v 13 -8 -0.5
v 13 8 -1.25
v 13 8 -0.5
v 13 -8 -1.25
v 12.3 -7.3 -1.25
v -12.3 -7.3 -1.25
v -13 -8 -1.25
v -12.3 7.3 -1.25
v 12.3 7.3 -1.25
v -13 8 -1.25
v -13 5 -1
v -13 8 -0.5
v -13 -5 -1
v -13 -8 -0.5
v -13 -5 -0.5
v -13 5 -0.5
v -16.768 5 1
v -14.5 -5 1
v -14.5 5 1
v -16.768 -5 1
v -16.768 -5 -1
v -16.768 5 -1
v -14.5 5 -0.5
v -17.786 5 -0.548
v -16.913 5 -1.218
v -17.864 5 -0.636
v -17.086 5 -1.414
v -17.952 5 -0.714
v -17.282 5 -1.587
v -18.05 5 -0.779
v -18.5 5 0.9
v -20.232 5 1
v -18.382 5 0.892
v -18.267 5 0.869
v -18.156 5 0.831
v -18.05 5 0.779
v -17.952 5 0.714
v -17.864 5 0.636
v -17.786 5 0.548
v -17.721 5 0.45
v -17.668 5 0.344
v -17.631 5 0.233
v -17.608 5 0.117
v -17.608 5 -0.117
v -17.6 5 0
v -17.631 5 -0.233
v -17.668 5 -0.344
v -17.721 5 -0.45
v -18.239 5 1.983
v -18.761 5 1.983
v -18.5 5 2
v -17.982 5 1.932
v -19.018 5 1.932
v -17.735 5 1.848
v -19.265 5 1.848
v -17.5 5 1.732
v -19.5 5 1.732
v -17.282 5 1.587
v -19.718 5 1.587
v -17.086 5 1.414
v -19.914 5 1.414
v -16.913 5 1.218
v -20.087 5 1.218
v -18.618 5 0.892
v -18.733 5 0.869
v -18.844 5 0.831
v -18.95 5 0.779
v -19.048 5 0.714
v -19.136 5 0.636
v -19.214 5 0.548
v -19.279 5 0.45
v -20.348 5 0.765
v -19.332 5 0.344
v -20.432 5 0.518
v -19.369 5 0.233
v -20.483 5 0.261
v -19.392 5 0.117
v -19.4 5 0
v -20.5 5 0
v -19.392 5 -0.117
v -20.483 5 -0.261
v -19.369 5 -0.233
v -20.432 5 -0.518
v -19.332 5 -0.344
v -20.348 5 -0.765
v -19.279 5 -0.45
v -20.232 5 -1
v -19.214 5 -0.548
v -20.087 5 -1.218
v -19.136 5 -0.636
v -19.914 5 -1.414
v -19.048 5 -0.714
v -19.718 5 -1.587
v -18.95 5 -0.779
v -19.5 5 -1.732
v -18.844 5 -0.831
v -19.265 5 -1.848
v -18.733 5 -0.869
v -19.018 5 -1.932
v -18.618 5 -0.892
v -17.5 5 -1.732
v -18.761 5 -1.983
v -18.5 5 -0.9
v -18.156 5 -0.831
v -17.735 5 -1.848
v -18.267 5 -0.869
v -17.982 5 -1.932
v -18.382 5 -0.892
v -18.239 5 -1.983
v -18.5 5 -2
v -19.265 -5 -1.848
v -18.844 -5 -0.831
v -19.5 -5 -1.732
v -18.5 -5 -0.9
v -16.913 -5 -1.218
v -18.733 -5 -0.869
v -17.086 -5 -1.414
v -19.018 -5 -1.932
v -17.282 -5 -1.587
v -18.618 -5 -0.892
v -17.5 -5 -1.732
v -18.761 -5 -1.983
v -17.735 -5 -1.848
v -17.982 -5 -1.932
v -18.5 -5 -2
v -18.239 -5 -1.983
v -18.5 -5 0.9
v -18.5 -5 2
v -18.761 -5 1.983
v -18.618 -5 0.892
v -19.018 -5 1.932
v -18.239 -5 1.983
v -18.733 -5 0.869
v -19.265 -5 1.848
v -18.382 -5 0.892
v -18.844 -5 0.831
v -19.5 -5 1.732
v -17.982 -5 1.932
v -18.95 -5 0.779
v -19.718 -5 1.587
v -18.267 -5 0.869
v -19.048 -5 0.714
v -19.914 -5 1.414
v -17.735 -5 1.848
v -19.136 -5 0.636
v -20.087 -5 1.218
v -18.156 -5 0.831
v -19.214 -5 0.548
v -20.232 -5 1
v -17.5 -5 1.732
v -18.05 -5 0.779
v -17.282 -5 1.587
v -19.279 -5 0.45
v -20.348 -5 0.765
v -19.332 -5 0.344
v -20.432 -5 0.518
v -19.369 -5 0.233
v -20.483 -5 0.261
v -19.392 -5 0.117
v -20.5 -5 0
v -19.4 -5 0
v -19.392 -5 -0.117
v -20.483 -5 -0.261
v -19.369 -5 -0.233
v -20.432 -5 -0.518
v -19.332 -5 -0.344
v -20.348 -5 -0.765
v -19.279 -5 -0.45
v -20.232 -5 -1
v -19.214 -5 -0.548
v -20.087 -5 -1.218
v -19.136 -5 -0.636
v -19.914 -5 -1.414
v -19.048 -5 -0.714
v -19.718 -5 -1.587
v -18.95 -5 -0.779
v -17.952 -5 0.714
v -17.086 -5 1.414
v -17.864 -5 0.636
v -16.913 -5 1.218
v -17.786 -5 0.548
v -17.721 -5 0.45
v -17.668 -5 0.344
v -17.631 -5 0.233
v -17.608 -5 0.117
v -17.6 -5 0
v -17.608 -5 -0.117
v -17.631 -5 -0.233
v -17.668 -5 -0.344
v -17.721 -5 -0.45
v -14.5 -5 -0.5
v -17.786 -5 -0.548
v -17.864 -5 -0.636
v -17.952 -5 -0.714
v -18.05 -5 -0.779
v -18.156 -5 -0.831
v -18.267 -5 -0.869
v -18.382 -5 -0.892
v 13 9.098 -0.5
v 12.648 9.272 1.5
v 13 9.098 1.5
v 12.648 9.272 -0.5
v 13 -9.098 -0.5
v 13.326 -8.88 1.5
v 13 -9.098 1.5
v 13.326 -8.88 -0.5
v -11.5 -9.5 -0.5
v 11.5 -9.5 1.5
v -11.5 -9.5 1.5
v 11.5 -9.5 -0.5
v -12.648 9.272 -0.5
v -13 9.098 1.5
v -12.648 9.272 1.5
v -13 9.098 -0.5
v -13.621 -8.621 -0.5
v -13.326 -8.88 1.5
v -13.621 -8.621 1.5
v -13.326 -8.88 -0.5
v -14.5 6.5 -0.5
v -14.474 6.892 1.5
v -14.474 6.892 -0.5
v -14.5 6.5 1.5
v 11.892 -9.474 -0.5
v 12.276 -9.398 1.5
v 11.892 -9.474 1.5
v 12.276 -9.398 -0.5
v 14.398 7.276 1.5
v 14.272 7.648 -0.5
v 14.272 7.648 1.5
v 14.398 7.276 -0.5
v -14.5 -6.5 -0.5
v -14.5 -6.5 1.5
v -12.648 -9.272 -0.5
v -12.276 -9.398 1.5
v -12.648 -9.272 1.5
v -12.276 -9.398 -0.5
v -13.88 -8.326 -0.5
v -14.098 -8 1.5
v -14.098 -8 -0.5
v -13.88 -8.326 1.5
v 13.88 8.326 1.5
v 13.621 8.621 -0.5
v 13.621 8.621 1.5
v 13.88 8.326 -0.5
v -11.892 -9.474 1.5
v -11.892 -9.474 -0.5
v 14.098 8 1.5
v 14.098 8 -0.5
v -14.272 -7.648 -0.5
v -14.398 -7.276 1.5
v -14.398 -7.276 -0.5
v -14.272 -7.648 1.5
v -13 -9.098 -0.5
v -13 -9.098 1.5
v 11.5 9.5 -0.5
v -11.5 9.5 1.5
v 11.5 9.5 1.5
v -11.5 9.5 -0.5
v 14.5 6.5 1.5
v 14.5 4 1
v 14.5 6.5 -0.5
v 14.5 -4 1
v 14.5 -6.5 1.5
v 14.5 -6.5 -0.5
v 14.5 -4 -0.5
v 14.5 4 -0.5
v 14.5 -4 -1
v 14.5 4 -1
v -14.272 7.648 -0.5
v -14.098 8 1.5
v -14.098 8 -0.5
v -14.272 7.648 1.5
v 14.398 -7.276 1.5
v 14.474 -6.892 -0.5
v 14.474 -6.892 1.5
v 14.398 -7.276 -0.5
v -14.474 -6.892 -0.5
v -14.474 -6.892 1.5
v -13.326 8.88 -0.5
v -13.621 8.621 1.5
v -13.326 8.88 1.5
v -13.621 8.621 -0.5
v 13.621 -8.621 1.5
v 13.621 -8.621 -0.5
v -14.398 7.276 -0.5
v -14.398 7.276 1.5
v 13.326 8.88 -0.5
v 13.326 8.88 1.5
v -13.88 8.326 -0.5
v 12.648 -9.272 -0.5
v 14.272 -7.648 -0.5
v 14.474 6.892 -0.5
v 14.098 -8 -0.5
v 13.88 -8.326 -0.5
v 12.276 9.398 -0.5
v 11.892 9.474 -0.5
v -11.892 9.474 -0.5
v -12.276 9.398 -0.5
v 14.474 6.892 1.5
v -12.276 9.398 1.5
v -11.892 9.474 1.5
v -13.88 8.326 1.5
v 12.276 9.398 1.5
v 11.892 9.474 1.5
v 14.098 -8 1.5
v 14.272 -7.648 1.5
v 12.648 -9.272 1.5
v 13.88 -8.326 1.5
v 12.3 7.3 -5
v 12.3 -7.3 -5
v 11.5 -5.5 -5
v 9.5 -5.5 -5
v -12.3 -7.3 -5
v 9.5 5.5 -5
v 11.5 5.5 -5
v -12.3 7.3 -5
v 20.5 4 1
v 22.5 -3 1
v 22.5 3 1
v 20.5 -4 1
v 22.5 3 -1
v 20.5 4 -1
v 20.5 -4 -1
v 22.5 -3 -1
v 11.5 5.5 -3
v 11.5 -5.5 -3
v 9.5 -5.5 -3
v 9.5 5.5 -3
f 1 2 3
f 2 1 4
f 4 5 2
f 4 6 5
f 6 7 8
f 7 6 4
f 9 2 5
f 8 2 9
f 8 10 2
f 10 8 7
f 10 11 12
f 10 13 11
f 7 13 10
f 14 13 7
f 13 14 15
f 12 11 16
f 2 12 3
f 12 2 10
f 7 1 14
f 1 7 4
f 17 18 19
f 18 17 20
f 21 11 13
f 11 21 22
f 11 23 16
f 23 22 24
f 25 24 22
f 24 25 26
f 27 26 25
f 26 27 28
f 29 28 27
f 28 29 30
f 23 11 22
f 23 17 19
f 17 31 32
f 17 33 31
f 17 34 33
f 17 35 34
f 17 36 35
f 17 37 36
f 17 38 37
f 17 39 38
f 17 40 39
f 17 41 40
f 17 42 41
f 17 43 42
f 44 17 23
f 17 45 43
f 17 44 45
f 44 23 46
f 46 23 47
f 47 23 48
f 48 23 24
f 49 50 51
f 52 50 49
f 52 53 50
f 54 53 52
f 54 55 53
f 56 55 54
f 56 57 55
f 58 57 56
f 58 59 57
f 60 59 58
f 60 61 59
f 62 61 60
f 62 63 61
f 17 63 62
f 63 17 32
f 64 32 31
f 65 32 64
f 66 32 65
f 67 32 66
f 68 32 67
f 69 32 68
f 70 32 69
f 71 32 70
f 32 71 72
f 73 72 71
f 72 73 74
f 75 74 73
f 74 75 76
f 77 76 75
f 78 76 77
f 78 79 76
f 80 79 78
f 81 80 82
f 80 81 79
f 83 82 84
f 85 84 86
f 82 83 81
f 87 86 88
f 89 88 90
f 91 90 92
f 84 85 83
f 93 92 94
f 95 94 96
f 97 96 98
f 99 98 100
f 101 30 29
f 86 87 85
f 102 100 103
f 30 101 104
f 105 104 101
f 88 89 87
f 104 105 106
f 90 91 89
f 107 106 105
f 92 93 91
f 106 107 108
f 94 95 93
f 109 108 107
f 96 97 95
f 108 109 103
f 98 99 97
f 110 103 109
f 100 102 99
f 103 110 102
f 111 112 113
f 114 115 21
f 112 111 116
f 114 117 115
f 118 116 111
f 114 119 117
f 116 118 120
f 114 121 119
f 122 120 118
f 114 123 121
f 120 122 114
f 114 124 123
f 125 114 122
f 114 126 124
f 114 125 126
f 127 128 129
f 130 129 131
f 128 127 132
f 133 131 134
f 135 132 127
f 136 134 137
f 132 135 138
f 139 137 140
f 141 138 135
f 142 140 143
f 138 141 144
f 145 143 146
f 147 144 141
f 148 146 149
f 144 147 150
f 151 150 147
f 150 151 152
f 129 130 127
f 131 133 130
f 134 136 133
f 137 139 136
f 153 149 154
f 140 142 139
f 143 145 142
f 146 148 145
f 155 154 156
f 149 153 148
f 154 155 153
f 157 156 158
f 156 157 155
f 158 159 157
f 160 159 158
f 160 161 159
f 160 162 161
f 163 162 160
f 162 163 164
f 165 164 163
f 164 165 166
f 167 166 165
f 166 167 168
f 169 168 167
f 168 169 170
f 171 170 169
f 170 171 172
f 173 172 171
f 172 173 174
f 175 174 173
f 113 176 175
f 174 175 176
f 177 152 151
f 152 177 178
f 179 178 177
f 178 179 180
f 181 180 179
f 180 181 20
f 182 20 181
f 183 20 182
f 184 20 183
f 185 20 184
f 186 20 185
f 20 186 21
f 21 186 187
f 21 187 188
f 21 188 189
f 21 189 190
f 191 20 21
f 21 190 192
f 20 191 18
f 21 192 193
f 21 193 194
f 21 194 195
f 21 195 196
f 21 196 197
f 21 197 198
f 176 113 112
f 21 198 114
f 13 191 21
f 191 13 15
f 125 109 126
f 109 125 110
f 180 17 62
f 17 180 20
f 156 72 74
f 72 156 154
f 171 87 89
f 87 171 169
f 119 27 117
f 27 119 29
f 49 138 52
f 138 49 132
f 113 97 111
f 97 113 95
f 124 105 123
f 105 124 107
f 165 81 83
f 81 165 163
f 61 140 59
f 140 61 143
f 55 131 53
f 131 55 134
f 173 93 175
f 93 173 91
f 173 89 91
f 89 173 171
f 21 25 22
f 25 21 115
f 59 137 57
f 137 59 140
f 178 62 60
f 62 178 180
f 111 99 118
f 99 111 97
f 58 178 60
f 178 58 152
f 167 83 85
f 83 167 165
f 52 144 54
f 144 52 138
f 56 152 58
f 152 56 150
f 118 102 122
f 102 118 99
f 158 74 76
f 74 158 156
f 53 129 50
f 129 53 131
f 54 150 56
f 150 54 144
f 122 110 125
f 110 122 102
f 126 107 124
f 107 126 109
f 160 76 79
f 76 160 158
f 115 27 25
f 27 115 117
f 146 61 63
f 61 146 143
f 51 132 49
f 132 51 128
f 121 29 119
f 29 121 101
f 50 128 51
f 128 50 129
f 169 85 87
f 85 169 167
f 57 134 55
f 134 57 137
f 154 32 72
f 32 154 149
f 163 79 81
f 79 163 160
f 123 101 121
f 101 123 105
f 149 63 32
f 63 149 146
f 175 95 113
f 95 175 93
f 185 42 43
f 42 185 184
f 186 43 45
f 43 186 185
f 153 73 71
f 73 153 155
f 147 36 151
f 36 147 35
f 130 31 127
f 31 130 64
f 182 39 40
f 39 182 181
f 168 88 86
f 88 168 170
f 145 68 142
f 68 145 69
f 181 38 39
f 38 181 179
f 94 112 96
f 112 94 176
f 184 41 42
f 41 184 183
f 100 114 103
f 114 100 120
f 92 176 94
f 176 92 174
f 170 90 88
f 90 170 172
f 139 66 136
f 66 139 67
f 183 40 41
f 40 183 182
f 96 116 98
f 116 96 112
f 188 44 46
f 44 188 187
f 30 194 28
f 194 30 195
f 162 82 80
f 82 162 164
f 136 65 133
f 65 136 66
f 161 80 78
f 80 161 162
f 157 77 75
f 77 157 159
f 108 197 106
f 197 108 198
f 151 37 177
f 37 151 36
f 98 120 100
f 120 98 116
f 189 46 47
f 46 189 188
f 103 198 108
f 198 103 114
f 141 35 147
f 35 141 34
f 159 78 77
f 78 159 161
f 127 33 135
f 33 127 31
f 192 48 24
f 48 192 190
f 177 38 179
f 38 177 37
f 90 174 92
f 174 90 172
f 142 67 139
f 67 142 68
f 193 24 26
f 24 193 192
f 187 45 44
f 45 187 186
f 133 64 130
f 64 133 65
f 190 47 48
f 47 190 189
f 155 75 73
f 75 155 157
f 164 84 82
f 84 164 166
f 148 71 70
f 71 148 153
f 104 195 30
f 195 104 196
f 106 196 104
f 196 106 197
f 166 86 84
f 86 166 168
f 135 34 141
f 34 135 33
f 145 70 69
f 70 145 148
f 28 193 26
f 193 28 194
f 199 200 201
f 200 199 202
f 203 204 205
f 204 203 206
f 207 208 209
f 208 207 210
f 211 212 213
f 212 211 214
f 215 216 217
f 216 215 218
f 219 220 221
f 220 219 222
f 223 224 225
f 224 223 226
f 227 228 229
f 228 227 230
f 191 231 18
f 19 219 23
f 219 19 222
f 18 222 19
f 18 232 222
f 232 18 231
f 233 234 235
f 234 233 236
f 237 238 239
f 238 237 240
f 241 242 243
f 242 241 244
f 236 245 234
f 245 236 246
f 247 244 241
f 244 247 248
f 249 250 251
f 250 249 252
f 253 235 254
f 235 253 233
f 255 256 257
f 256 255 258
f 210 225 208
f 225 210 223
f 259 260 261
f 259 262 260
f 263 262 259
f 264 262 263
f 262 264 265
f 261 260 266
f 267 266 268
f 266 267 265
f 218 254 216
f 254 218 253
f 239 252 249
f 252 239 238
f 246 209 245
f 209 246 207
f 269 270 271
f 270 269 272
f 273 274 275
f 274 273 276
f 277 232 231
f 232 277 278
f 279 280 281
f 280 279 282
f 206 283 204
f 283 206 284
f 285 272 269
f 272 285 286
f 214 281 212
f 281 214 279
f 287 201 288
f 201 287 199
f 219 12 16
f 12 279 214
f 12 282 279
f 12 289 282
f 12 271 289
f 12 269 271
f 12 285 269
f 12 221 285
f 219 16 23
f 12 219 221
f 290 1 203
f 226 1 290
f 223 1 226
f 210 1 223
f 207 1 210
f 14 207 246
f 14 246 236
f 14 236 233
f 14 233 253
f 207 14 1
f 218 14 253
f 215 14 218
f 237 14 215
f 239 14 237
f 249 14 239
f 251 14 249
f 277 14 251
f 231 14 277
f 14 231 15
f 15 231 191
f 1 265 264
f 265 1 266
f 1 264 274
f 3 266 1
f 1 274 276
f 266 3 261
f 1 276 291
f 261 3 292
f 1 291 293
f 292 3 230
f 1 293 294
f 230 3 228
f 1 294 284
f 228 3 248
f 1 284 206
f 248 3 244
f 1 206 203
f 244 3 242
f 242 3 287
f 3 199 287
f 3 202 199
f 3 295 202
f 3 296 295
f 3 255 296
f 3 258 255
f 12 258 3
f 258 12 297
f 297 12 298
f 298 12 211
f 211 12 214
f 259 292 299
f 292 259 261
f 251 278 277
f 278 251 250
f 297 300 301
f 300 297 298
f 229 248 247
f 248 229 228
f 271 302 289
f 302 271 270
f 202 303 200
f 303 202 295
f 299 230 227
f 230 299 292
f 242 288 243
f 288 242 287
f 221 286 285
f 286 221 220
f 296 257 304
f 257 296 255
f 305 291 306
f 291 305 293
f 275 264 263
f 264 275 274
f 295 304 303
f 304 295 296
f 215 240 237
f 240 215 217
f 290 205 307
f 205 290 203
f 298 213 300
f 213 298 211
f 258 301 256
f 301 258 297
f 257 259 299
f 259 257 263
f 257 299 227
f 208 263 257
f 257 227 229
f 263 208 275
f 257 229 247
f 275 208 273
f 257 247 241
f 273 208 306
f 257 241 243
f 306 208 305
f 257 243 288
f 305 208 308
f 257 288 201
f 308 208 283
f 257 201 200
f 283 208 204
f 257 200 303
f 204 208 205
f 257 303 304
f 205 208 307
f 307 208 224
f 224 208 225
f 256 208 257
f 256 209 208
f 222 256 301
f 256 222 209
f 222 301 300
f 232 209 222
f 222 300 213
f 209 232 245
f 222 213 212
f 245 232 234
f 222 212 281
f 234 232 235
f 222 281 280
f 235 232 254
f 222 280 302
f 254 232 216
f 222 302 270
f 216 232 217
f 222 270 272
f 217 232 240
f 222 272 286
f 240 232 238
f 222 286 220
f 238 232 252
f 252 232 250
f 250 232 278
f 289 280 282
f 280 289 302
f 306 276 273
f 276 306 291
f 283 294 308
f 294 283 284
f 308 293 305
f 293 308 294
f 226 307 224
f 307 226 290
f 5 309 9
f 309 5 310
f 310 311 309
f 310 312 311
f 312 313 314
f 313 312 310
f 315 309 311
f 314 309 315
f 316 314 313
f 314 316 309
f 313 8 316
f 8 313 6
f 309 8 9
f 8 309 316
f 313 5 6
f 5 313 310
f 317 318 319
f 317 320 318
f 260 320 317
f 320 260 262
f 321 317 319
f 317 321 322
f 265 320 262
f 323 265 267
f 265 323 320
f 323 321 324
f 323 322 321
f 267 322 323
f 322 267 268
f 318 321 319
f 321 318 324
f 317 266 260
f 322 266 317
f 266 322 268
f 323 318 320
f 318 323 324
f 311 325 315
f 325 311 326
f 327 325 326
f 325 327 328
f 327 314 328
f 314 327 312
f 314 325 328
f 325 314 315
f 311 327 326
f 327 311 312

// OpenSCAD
// Krytka konektoru - vodotěsná krytka pro externí konektory
// Chrání nabíjecí/datové konektory na trupu
// Material: PET-G, 15% výplň, 3 perimetry

$fn = 48;

// Rozměry otvoru v trupu pro konektor
otvor_sirka = 25;
otvor_vyska = 15;
zaobleni = 3;
tl = 2;
hloubka_zapusteni = 5;

module krytka_konektoru() {
    // Víčko s těsněním
    difference() {
        union() {
            // Vnější deska
            minkowski() {
                cube([otvor_sirka + 2*tl - 2*zaobleni,
                      otvor_vyska + 2*tl - 2*zaobleni,
                      tl/2], center=true);
                cylinder(r=zaobleni, h=tl/2);
            }

            // Zapuštění do otvoru
            translate([0, 0, -hloubka_zapusteni/2])
                cube([otvor_sirka - 0.4, otvor_vyska - 0.4, hloubka_zapusteni], center=true);

            // Drážka pro O-ring těsnění
            translate([0, 0, -0.5])
                difference() {
                    cube([otvor_sirka + 1, otvor_vyska + 1, 1.5], center=true);
                    cube([otvor_sirka - 2, otvor_vyska - 2, 2], center=true);
                }

            // Úchytný jazýček pro otevírání
            translate([otvor_sirka/2 + tl + 3, 0, 0])
                hull() {
                    cube([6, 8, tl], center=true);
                    translate([4, 0, 0])
                        cube([2, 6, tl], center=true);
                }

            // Pant (na protější straně)
            translate([-(otvor_sirka/2 + tl + 1), 0, 0])
                pant_krytky();
        }

        // Zářez pro pružný zámek
        translate([otvor_sirka/2 - 2, 0, -hloubka_zapusteni + 1])
            cube([2, otvor_vyska - 4, 2], center=true);
    }
}

module pant_krytky() {
    difference() {
        union() {
            cube([8, 10, tl], center=true);
            translate([-3, 0, 0])
                rotate([90, 0, 0])
                    cylinder(d=4, h=10, center=true);
        }
        translate([-3, 0, 0])
            rotate([90, 0, 0])
                cylinder(d=1.8, h=12, center=true);
    }
}

krytka_konektoru();
